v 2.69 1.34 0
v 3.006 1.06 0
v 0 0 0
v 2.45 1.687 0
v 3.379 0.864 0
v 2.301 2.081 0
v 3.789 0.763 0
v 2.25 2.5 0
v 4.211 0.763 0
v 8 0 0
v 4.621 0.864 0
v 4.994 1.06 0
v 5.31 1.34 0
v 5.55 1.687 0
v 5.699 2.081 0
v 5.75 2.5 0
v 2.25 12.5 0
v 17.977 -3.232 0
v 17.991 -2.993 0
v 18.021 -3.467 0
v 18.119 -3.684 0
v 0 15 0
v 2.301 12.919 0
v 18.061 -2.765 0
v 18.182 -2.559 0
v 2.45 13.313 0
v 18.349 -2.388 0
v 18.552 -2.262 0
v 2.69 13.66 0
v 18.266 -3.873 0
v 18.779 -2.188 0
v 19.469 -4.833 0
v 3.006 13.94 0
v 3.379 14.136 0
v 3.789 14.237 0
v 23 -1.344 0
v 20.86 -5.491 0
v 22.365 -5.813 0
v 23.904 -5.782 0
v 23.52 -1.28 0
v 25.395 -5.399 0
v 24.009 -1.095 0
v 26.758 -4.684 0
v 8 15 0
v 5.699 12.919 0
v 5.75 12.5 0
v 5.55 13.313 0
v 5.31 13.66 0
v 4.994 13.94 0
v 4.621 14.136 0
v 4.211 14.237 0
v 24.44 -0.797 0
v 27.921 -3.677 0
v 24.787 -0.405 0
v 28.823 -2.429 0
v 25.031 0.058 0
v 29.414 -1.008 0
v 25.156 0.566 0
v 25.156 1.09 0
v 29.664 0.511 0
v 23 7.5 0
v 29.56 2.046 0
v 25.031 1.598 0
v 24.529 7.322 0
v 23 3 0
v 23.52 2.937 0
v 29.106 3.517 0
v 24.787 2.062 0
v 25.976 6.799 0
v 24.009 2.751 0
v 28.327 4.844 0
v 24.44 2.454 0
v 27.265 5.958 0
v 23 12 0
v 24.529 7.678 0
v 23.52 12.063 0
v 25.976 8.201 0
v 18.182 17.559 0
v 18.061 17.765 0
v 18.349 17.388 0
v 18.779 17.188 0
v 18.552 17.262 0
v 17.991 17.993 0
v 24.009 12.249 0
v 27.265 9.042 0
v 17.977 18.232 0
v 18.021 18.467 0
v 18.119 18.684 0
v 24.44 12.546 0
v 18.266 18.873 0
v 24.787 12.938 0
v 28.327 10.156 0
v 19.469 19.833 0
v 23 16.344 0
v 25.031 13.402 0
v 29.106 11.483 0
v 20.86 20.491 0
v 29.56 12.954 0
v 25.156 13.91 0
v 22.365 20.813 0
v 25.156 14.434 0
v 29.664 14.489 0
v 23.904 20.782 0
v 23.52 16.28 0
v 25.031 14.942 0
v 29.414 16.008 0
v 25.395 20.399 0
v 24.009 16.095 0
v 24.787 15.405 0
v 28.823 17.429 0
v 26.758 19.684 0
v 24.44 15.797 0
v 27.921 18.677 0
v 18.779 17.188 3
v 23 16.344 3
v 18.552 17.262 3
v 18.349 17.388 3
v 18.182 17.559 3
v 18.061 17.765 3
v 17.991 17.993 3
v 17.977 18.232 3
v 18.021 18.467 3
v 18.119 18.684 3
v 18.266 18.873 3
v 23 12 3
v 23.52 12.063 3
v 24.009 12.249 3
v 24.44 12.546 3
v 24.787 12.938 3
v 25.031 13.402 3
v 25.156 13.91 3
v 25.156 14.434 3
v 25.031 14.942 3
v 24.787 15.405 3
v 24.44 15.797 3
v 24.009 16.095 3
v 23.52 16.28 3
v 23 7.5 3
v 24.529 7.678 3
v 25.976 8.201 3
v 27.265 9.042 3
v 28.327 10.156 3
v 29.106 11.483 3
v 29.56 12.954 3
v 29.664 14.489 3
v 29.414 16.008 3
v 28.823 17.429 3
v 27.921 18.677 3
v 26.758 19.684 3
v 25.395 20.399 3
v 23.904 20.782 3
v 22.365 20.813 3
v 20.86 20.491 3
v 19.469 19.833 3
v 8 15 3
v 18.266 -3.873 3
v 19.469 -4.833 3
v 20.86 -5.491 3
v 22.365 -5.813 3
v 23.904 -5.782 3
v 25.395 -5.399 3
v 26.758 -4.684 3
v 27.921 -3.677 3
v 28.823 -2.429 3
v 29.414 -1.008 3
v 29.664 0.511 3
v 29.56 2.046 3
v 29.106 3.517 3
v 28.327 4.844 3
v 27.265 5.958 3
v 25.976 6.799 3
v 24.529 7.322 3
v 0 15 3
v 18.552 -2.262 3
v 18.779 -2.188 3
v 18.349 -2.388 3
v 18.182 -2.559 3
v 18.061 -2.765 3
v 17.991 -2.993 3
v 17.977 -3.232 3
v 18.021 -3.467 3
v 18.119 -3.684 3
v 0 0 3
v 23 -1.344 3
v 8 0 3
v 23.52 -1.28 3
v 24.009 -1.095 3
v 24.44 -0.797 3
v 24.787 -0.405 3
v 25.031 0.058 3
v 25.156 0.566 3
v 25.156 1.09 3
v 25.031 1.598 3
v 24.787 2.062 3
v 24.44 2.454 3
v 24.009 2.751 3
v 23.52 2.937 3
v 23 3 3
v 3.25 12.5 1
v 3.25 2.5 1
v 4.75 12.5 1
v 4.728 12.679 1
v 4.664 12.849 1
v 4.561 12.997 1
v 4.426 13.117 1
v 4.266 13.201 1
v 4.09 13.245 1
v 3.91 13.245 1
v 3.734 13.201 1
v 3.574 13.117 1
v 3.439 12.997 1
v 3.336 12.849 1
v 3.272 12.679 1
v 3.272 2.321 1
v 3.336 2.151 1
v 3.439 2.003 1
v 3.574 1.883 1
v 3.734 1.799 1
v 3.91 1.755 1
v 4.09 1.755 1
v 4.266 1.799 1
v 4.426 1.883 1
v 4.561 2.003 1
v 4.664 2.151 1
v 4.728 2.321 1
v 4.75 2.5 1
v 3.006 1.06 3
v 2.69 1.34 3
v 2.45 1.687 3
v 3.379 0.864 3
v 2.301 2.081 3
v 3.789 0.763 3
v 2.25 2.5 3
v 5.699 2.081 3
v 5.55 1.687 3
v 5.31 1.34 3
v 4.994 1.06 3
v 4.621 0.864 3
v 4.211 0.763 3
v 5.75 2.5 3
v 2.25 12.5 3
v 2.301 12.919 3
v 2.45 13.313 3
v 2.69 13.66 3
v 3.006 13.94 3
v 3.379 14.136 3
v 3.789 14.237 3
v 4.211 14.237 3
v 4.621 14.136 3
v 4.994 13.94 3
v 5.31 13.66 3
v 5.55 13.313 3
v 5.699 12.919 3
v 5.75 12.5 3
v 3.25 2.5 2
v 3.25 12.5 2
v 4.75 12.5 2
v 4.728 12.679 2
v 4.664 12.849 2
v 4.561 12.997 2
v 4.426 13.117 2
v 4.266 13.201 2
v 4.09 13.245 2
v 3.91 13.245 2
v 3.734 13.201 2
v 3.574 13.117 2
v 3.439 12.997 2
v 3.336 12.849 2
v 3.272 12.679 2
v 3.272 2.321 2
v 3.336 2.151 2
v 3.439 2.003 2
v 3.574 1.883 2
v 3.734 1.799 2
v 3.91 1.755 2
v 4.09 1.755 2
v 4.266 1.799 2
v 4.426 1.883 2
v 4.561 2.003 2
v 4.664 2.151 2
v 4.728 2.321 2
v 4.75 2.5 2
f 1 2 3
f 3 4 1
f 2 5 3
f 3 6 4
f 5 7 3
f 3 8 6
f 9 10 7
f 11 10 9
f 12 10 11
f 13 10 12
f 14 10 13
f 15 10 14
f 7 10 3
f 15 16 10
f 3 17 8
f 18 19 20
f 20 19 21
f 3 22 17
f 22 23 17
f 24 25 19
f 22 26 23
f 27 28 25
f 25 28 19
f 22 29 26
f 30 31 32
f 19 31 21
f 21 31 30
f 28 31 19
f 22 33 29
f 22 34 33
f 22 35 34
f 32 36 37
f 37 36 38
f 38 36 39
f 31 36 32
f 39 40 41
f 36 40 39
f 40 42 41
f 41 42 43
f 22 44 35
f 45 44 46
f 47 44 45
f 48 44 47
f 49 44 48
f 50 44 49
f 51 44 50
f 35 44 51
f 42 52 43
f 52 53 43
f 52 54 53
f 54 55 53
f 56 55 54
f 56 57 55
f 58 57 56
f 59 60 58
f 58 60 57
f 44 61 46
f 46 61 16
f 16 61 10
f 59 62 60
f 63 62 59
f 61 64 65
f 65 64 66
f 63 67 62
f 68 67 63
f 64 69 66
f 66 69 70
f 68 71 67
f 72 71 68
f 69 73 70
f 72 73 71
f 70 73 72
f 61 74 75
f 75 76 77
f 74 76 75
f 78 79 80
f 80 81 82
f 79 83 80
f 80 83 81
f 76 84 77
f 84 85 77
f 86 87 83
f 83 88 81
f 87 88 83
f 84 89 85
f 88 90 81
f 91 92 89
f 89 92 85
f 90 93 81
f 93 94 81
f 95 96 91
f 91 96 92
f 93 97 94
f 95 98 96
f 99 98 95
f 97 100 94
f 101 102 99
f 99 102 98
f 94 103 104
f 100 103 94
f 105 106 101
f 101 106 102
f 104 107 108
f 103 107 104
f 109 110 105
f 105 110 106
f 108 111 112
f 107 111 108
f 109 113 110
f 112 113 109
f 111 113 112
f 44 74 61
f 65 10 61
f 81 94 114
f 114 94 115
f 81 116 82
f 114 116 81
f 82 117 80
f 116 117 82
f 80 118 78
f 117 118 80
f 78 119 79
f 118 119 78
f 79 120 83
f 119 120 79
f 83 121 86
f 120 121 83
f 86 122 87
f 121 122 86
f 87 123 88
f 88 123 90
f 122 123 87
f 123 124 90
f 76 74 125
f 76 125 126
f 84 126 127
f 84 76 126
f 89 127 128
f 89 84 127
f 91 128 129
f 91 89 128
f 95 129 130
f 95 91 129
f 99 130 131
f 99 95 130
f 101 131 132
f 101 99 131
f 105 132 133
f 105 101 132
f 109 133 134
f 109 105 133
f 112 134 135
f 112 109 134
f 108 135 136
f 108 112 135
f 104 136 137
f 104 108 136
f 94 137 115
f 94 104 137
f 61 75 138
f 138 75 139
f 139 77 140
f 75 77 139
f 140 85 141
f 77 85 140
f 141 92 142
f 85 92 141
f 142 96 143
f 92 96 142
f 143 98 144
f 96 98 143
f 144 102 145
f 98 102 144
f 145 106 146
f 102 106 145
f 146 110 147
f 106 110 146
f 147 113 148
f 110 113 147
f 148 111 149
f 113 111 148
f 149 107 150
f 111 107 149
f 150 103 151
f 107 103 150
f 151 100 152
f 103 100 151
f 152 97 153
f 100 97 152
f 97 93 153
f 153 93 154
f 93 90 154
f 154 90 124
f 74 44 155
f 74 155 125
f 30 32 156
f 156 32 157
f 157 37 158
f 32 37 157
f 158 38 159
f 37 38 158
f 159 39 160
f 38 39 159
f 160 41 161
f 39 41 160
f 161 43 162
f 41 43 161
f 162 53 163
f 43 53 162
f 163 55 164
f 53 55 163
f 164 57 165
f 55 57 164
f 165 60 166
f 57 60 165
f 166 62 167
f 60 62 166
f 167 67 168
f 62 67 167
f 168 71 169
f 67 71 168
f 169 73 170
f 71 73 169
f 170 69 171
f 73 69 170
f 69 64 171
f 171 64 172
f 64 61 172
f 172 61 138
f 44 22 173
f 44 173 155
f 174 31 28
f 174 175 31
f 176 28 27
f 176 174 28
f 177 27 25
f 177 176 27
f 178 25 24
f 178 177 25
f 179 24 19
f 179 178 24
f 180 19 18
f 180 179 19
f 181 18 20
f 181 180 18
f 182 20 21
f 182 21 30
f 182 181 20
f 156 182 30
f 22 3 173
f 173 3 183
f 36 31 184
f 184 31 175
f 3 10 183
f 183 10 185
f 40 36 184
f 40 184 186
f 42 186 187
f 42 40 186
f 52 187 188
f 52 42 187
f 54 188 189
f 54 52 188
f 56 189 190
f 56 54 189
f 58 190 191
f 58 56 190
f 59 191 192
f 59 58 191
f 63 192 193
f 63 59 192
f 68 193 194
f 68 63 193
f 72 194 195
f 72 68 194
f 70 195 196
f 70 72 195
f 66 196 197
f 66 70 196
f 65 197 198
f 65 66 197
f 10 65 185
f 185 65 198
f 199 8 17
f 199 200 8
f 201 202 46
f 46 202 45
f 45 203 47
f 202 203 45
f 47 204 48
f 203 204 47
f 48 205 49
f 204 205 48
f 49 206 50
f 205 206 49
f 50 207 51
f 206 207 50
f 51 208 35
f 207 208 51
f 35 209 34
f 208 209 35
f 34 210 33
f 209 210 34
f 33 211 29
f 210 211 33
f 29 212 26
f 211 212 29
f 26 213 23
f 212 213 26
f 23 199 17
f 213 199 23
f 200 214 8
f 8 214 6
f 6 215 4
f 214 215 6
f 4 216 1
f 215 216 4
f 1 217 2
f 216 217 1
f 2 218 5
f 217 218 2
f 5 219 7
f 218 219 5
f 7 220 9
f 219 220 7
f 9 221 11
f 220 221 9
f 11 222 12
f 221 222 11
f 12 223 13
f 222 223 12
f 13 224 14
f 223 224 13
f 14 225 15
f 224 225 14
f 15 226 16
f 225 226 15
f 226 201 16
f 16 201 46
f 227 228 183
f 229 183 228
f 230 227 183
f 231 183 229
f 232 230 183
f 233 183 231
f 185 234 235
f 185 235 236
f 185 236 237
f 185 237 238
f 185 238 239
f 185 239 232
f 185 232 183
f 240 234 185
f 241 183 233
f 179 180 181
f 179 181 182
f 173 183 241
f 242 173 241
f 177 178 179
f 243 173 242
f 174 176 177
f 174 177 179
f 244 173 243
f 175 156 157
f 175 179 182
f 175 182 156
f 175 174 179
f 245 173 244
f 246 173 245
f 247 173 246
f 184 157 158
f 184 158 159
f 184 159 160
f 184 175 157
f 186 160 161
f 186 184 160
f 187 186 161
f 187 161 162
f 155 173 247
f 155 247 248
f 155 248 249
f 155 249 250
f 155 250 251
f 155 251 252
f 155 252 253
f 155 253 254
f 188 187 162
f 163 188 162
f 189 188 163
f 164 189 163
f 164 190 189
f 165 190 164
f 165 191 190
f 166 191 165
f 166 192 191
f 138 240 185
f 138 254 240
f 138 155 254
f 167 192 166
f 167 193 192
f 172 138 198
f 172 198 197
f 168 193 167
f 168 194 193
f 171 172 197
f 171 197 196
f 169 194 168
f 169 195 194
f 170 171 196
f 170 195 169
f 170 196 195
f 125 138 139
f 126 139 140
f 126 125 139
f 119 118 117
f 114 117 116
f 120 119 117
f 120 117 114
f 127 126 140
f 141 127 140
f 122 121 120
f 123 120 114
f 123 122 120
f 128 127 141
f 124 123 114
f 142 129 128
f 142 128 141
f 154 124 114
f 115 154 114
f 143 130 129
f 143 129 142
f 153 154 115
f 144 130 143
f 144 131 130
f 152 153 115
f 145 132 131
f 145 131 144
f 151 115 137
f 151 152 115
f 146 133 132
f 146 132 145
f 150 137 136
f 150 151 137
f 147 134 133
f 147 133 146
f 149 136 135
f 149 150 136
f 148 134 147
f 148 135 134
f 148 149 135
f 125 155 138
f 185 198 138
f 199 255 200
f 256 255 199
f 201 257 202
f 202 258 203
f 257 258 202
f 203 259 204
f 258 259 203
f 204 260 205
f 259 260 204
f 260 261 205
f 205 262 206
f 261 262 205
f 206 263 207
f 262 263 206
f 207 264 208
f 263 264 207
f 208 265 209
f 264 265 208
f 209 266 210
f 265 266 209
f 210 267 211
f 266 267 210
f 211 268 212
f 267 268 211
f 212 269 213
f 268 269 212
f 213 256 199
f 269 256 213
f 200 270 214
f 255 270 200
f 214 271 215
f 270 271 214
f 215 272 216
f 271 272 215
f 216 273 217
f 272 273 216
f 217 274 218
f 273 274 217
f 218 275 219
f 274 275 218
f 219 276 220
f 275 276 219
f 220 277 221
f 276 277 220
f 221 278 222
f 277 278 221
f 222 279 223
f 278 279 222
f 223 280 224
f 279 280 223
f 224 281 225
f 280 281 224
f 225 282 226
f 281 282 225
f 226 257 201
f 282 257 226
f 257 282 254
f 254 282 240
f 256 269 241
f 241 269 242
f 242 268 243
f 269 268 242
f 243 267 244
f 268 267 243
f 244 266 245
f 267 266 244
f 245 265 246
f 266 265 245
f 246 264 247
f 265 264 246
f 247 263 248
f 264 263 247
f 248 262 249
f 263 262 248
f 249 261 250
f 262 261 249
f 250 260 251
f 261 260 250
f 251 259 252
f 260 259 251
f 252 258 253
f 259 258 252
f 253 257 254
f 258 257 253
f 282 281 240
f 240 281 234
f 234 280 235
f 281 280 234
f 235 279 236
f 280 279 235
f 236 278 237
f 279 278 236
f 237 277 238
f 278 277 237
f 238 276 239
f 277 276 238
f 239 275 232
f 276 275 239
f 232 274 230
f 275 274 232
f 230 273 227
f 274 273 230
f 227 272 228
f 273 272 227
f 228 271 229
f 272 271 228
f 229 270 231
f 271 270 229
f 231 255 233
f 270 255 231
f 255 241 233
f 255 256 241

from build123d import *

# Parameters (mm, degrees)
PAD_DEPTH    = 3
POCKET_DEPTH = 5
CHAMFER_SIZE = 1
FILLET_R     = 1


with BuildPart() as part:
    # Sketch → Pad (new body)
    with BuildSketch(Plane.XY):
        with BuildLine():
            Line((0, 15), (0, 0))
            Line((0, 0), (8, 0))
            Line((8, 0), (23, 3))
            ThreePointArc((23, -1.343534), (25.171767, 0.828233), (23, 3))
            Line((23, -1.343534), (17.21767, -2.5))
            ThreePointArc((17.21767, -2.5), (28.775711, -2.511474), (23, 7.5))
            ThreePointArc((23, 7.5), (28.775711, 17.511474), (17.21767, 17.5))
            Line((17.21767, 17.5), (23, 16.343534))
            ThreePointArc((23, 12), (25.171767, 14.171767), (23, 16.343534))
            Line((8, 15), (23, 12))
            Line((0, 15), (8, 15))
        make_face()
    extrude(amount=PAD_DEPTH)

    # Sketch001 (on Face13 of Pad) → Pocket (cut)
    with BuildSketch(Plane.XY.offset(3)):
        with BuildLine():
            ThreePointArc((4.75, 12.5), (4, 13.25), (3.25, 12.5))
            Line((3.25, 12.5), (3.25, 2.5))
            ThreePointArc((3.25, 2.5), (4, 1.75), (4.75, 2.5))
            Line((4.75, 12.5), (4.75, 2.5))
        make_face()
    extrude(amount=-POCKET_DEPTH, mode=Mode.SUBTRACT)

    # Chamfer
    chamfer_edges = [part.edges().sort_by_distance(p)[0] for p in [
        (3.25, 7.5, 0),
        (4.75, 7.5, 3),
    ]]
    chamfer(chamfer_edges, length=CHAMFER_SIZE)

    # Fillet
    fillet_edges = [part.edges().sort_by_distance(p)[0] for p in [
        (17.21767, -2.5, 1.5),
        (17.21767, 17.5, 1.5),
    ]]
    fillet(fillet_edges, radius=FILLET_R)


solid = part.part
